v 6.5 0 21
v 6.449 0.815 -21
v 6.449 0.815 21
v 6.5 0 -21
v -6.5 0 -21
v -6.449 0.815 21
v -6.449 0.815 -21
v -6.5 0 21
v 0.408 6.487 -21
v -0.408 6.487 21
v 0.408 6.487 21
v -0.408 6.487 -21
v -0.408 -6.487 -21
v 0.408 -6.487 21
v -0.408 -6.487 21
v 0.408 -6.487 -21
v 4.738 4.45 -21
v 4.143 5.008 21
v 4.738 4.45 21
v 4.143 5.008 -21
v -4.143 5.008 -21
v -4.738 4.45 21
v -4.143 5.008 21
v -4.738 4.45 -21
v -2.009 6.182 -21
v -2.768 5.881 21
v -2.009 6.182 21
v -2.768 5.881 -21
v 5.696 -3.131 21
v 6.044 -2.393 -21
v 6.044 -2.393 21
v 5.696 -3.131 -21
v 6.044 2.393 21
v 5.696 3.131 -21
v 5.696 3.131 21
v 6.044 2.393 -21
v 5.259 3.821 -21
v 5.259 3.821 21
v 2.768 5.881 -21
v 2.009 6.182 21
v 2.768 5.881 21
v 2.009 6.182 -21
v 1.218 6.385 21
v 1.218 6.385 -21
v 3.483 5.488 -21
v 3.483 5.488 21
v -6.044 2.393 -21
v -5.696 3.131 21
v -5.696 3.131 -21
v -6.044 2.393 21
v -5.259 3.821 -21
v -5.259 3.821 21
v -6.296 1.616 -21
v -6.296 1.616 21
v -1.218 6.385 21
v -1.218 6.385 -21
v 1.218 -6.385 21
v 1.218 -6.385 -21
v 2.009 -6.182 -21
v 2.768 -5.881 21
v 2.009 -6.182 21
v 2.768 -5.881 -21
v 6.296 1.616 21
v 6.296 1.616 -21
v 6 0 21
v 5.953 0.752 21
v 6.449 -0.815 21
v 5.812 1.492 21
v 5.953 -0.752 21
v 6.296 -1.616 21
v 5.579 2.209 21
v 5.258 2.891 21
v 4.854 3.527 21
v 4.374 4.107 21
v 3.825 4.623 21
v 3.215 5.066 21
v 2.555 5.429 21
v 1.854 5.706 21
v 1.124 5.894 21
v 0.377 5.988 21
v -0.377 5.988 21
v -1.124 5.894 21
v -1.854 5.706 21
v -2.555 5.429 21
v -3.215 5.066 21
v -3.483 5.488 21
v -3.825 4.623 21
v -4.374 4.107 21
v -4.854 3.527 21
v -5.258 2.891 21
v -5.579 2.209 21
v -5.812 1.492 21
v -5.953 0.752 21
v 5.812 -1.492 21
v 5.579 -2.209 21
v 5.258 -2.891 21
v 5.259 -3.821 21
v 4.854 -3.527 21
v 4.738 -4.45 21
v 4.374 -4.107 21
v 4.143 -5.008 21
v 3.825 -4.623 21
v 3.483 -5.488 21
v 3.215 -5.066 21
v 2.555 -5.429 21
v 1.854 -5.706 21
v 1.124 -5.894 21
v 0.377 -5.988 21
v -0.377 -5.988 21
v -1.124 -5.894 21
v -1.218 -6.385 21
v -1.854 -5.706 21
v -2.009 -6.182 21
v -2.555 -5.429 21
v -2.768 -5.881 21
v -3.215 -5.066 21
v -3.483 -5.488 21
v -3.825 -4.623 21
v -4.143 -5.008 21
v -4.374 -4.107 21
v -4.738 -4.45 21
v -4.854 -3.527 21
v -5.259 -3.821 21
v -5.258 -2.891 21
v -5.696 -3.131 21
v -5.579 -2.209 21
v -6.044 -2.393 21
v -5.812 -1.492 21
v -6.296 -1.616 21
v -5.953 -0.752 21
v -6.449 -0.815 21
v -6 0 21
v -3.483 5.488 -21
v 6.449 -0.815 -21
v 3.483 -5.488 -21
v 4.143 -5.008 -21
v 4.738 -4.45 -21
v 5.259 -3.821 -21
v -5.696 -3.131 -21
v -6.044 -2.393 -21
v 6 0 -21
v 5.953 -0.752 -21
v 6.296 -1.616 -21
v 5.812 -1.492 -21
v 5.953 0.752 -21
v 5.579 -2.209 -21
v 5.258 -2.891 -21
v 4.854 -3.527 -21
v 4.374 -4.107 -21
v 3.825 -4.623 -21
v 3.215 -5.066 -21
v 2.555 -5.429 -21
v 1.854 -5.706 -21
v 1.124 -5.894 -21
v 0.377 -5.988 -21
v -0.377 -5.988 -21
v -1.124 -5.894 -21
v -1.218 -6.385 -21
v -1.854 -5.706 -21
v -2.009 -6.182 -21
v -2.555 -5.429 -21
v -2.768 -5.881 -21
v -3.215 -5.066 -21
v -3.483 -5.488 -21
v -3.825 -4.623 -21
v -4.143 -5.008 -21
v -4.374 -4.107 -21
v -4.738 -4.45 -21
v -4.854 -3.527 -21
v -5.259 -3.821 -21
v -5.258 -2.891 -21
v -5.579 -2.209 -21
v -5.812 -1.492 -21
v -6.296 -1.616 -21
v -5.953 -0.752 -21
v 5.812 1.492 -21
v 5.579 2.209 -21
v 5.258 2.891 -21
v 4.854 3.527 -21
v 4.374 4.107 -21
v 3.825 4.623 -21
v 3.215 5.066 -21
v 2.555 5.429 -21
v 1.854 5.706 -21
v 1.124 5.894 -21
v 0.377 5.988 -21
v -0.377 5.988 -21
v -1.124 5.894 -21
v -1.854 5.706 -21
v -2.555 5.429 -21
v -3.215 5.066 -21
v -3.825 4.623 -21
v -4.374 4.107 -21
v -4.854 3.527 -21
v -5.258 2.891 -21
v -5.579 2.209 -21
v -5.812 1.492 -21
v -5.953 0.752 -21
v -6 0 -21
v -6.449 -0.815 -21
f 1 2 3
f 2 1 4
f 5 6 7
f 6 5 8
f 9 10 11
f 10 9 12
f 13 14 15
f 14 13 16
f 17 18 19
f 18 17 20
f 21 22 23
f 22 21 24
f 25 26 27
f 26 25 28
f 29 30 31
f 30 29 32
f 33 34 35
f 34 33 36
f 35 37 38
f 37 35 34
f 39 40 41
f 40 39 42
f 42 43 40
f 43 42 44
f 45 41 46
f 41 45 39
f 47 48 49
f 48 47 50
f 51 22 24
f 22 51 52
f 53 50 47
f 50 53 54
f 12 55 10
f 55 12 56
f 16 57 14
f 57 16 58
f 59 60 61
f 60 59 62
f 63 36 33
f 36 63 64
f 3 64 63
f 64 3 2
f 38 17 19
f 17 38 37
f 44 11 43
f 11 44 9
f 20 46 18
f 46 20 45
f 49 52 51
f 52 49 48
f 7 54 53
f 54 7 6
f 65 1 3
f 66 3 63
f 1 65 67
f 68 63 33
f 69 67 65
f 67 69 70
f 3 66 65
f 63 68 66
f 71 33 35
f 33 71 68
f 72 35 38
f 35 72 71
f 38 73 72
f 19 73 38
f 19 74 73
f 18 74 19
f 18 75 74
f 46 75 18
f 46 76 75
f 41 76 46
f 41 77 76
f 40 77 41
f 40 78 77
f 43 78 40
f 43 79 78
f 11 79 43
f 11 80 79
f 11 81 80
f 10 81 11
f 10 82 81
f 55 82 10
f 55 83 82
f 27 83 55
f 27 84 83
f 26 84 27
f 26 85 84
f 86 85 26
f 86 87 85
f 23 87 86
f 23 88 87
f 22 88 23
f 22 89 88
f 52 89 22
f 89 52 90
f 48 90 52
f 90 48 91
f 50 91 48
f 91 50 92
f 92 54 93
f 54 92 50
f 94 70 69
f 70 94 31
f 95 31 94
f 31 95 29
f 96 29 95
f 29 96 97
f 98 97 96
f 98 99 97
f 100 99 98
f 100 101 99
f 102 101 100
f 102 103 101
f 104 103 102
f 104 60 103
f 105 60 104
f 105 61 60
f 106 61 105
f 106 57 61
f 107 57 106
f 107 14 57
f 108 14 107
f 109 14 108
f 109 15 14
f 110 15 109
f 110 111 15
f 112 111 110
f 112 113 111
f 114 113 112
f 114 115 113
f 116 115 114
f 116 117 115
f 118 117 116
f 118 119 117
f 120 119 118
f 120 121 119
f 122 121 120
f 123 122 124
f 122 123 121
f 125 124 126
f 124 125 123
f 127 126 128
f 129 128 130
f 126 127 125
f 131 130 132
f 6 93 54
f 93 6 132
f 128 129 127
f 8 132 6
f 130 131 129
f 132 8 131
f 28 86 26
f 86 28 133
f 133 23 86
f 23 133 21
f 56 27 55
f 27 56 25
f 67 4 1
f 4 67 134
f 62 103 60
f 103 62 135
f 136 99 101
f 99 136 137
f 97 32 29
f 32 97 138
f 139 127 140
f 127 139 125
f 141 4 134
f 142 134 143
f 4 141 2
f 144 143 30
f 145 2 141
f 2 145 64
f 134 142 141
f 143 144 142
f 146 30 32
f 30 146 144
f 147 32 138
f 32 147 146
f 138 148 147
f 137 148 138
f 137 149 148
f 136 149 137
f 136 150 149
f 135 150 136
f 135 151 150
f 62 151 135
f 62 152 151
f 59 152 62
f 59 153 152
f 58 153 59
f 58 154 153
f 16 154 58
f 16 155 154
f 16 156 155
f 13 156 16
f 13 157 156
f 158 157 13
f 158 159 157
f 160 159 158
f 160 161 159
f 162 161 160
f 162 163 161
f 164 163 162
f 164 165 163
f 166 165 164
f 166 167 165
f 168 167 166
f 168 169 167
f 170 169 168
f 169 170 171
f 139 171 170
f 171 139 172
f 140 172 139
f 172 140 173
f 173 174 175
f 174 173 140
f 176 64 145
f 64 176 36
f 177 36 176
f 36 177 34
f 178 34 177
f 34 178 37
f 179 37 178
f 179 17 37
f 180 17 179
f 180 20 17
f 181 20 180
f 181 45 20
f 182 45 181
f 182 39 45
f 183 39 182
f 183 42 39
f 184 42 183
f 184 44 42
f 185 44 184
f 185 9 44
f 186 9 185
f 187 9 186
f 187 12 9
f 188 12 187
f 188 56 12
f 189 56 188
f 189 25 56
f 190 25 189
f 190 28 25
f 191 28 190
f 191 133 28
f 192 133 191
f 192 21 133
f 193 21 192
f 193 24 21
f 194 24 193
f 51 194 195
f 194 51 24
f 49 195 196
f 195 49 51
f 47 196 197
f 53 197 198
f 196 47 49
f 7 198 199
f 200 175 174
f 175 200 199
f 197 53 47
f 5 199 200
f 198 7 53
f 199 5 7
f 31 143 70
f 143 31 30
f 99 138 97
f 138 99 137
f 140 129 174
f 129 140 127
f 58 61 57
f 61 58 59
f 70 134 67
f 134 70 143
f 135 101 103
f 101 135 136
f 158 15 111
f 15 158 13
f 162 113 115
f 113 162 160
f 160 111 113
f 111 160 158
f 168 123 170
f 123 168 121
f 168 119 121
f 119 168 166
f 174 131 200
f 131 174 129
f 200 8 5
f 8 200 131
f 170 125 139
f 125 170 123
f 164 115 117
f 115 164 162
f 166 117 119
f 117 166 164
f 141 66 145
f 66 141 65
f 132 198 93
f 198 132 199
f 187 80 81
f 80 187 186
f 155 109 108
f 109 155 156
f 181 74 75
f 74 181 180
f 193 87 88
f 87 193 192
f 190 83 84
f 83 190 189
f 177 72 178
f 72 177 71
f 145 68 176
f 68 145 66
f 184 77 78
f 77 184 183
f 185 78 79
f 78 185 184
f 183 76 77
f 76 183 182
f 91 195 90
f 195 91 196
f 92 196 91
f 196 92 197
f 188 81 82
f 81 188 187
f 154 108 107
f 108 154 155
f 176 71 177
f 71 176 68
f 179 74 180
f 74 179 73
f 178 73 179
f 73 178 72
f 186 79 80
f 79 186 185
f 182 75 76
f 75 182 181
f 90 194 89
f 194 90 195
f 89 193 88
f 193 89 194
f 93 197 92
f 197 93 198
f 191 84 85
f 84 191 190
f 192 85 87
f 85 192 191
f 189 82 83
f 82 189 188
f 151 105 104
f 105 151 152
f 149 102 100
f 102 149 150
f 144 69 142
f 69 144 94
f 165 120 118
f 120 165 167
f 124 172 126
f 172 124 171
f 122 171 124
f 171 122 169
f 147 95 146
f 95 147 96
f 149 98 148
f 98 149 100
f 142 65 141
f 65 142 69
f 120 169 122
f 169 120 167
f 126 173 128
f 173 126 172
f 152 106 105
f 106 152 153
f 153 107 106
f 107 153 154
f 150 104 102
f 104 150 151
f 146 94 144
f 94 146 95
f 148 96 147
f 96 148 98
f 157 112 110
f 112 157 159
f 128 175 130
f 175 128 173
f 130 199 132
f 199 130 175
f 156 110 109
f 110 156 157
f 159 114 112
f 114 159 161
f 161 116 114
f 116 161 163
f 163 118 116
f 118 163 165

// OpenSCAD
$fn = 50;


difference() {
	union() {
		translate(v = [0, 0, -21.0000000000]) {
			cylinder(h = 42, r = 6.5000000000);
		}
	}
	union() {
		translate(v = [0, 0, -100.0000000000]) {
			cylinder(h = 200, r = 6);
		}
	}
}
